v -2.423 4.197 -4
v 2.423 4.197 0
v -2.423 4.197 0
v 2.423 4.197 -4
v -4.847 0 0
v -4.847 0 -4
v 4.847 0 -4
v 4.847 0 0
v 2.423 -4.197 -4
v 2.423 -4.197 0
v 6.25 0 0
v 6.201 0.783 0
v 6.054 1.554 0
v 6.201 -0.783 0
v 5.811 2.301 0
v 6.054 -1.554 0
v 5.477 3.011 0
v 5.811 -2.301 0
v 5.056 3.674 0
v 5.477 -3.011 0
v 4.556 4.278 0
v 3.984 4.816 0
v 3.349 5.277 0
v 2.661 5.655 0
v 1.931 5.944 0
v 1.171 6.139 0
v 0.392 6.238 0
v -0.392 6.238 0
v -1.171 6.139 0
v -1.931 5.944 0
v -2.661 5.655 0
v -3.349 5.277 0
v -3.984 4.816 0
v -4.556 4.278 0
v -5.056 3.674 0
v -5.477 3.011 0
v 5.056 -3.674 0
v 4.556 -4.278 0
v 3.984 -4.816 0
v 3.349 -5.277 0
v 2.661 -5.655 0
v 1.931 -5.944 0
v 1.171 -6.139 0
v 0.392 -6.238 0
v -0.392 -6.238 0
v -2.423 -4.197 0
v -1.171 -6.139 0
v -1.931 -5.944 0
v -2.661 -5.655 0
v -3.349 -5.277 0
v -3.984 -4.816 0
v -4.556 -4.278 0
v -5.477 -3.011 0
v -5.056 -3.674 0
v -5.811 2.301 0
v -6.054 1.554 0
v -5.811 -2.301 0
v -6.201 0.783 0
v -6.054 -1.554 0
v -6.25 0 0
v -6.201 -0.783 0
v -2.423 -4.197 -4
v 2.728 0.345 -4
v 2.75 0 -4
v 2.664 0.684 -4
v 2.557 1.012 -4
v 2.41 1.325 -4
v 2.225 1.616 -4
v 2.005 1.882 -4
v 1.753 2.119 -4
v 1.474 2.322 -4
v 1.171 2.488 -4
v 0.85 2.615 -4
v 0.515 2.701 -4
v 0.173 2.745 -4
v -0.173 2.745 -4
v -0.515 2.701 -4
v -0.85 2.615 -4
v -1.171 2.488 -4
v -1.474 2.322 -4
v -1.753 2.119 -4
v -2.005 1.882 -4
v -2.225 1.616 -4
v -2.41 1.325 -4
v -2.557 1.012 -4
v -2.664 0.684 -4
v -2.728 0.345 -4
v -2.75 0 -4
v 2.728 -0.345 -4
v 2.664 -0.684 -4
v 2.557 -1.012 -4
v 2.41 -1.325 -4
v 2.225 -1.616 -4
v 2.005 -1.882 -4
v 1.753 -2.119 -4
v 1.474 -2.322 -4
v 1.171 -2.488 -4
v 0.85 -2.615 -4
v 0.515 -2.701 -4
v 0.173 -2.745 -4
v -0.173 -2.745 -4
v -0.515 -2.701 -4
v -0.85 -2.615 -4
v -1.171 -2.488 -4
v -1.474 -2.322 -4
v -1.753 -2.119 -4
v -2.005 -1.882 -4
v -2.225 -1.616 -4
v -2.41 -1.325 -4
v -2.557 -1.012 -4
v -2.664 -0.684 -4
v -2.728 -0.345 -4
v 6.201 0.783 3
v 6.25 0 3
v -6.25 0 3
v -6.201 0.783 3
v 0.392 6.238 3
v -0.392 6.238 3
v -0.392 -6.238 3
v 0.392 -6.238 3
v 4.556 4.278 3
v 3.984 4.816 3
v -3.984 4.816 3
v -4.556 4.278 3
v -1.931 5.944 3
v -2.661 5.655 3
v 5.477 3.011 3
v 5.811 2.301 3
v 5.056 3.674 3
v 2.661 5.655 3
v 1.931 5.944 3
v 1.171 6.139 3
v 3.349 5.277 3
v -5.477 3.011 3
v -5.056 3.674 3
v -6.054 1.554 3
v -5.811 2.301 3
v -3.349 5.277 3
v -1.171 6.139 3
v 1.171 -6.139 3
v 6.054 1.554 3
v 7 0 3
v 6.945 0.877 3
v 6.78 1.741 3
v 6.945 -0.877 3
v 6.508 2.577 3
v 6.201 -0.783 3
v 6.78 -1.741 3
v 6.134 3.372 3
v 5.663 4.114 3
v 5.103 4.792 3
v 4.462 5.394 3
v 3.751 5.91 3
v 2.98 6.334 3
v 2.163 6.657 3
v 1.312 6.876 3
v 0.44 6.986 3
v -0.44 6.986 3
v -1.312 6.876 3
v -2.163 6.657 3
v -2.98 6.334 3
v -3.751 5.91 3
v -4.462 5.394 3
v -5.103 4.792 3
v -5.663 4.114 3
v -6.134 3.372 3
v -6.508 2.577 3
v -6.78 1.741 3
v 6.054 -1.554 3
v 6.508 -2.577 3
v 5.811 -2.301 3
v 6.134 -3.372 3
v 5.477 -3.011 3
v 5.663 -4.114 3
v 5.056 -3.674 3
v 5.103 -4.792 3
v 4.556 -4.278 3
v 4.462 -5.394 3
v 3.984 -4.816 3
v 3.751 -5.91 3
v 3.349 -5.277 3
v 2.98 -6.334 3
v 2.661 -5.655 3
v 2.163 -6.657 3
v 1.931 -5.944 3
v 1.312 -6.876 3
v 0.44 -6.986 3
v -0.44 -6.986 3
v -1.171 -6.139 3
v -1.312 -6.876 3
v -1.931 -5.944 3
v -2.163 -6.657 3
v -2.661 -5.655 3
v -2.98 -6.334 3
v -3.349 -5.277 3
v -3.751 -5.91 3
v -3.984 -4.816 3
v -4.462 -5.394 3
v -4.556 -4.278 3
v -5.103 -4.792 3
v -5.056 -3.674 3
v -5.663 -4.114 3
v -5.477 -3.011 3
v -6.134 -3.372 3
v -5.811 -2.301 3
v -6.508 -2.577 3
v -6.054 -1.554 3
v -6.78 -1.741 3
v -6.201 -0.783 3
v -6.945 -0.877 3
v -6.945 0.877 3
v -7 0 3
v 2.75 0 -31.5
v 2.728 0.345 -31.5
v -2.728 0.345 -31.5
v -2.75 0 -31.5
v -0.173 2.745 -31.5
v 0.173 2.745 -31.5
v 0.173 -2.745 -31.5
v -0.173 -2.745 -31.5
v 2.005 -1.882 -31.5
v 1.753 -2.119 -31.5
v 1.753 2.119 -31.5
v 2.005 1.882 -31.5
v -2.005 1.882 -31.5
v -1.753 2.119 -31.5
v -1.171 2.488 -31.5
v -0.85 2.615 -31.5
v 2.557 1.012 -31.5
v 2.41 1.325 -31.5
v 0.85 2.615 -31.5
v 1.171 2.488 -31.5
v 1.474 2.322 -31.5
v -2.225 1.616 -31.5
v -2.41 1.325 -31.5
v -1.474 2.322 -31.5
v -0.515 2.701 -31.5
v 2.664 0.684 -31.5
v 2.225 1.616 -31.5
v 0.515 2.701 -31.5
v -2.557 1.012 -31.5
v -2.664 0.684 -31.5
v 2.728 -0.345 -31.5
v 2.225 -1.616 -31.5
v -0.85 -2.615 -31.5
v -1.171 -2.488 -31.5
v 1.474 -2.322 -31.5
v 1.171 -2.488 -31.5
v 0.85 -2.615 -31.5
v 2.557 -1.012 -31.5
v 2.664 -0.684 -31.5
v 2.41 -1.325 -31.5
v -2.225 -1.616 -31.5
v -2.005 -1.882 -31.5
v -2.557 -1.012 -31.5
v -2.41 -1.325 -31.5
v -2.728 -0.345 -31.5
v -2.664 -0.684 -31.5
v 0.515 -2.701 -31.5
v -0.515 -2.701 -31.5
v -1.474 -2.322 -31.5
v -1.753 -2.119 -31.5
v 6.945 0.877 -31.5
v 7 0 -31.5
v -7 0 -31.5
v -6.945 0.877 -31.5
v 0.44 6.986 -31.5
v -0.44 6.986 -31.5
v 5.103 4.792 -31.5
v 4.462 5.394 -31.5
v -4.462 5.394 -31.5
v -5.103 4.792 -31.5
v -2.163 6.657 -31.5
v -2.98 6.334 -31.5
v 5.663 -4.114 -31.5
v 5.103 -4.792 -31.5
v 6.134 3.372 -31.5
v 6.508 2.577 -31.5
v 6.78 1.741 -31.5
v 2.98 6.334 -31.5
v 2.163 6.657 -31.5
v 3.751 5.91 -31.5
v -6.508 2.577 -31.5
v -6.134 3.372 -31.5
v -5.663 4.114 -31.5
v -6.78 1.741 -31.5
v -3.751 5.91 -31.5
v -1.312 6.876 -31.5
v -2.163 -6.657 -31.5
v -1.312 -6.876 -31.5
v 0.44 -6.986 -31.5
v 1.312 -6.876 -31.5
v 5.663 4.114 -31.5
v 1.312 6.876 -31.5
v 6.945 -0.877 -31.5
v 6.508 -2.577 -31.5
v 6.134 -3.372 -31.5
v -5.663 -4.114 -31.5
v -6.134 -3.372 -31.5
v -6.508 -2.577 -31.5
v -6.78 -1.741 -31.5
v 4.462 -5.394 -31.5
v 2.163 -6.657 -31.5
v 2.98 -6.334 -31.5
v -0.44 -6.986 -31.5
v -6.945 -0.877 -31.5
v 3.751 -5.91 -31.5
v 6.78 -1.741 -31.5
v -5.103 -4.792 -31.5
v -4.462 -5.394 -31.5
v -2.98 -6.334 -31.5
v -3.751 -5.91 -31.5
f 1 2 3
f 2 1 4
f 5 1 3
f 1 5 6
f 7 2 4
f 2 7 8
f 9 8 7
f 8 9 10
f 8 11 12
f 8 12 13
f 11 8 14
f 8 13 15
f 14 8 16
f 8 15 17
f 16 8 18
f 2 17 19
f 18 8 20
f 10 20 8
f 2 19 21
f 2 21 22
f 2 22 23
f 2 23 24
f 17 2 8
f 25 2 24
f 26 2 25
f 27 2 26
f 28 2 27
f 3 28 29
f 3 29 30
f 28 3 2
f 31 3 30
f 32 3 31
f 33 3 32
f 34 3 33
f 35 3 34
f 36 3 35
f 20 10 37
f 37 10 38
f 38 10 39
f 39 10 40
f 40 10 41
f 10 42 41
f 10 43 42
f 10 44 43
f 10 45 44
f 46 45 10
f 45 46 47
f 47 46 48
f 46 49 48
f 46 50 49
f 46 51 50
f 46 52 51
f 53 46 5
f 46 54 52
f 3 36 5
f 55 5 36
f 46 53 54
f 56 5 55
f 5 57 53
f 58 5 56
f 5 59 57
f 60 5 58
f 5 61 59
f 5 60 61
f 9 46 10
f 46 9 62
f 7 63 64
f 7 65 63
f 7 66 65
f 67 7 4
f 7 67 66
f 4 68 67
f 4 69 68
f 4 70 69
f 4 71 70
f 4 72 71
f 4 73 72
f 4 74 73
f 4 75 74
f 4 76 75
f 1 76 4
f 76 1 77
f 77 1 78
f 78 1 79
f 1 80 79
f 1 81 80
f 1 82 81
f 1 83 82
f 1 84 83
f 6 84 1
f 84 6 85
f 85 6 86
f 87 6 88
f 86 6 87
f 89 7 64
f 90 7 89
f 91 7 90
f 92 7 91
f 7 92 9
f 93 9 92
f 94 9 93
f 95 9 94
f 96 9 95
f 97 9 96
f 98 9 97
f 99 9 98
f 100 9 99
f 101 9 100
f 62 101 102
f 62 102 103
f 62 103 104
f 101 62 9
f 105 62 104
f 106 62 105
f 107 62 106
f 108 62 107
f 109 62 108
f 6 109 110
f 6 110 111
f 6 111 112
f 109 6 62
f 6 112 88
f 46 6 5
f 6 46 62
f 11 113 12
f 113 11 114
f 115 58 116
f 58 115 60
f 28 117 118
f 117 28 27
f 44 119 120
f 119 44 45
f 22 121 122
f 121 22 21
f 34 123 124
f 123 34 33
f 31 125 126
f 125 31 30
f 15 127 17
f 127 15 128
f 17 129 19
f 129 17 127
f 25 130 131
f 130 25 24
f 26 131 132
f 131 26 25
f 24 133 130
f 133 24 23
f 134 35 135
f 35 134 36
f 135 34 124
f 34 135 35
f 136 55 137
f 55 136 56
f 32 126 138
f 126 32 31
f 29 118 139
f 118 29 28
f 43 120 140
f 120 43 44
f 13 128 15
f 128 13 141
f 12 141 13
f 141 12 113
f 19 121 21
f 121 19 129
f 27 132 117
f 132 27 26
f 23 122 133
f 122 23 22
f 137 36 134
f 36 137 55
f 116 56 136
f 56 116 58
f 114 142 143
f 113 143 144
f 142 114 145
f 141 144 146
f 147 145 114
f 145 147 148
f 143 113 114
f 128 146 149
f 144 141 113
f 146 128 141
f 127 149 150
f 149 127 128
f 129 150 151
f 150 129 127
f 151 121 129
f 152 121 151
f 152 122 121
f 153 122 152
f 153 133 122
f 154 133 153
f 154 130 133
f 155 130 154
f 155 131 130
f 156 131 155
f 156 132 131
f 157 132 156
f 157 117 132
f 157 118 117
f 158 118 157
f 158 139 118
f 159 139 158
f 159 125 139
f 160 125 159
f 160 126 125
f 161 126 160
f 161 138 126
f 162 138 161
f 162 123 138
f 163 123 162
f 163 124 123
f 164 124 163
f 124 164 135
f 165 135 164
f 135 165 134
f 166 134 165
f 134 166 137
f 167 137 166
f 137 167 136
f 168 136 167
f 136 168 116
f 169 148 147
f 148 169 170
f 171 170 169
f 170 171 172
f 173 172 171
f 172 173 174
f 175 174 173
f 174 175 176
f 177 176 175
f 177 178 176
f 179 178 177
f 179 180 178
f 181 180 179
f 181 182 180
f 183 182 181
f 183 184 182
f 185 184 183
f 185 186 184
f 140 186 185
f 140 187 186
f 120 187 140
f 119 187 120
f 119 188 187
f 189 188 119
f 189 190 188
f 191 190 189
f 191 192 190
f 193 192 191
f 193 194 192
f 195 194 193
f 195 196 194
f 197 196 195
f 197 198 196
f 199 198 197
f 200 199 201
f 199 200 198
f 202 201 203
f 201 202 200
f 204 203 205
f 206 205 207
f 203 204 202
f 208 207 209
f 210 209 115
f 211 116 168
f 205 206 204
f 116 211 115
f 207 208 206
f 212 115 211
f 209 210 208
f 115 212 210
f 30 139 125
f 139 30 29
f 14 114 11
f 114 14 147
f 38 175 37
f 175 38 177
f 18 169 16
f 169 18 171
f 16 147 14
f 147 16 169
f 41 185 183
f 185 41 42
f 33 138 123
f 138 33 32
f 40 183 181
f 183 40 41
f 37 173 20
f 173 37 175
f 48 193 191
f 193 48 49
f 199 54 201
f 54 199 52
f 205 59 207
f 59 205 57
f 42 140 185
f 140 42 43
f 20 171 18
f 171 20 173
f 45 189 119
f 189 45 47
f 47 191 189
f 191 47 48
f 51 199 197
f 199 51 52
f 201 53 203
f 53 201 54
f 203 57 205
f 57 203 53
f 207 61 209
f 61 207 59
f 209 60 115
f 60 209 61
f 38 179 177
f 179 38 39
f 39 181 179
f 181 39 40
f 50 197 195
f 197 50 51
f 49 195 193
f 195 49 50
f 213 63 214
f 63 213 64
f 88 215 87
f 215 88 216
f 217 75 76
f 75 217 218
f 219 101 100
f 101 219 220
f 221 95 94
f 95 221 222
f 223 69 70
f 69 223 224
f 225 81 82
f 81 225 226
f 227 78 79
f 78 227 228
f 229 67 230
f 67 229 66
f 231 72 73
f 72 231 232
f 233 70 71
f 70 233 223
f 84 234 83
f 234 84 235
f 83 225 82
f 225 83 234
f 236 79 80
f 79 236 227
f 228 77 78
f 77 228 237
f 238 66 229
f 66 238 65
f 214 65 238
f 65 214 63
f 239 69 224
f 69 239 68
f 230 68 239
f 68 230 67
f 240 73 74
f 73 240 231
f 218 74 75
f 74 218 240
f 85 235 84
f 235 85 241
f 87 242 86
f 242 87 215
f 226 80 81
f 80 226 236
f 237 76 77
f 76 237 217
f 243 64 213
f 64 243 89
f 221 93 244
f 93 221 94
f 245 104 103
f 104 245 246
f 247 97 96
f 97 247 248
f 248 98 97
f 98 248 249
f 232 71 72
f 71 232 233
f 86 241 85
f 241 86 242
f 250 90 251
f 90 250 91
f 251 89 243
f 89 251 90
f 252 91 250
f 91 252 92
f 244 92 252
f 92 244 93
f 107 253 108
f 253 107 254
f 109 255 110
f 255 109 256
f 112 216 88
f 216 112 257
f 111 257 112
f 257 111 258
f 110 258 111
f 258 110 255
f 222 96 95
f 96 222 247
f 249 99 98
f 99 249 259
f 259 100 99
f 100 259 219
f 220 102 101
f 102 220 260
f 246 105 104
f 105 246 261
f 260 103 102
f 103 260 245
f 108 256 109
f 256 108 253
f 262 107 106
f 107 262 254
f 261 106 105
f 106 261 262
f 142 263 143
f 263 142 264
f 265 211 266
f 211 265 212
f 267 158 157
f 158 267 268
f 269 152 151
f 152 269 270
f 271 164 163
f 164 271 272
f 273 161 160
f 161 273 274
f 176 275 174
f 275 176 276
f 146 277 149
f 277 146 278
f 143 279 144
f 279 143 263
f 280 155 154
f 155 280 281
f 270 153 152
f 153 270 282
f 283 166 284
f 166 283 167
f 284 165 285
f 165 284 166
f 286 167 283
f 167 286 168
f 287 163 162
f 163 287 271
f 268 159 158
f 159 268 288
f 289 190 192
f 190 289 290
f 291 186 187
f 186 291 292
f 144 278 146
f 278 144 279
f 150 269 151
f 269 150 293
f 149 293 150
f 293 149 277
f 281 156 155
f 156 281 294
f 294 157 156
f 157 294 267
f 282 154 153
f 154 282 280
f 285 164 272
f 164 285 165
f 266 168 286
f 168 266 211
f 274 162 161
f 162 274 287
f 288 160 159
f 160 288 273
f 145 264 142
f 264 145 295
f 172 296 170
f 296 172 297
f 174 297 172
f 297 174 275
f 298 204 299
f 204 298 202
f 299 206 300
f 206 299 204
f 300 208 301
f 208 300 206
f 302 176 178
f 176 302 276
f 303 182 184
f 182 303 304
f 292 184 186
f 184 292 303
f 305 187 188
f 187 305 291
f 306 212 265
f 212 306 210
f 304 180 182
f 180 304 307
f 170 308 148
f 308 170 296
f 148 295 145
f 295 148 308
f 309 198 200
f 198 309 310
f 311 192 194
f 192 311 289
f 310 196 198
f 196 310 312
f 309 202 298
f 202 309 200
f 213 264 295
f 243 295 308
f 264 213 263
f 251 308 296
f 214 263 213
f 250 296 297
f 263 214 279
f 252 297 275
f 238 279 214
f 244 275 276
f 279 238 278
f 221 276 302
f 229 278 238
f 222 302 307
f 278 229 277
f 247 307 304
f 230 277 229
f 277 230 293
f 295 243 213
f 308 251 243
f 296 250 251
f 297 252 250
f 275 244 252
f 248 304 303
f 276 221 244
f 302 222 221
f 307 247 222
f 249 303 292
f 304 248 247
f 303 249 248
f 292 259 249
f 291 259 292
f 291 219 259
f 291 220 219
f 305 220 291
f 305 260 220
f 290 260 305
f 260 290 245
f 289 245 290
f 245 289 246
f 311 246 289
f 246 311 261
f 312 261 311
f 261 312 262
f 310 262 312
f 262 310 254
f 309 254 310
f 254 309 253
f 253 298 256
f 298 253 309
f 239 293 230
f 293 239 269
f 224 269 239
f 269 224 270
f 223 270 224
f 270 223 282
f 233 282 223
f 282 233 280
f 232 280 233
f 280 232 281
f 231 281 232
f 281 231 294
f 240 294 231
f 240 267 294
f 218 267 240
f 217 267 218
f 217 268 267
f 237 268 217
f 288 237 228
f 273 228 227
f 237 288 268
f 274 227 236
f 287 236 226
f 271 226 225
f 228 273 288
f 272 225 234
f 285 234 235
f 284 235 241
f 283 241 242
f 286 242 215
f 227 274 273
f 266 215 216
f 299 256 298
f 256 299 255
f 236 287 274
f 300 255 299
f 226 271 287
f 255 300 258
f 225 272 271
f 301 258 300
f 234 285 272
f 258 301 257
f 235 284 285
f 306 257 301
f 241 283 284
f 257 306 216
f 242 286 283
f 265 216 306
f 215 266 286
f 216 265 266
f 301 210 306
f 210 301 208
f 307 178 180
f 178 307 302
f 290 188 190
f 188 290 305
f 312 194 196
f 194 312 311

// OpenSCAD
$fn = 50;

difference() {
	union() {
		translate(v = [0, 0, -31.5]) {
			cylinder(h = 34.5, r = 7.0);
		}
	}
	union() {
		translate(v = [0, 0, 0]) {
			rotate(a = [0, 0, 0]) {
				difference() {
					union() {
						translate(v = [0, 0, -4]) {
							linear_extrude(height = 4) {
								polygon(points = [[4.8468, 0.0], [2.4234000000000004, 4.197451927062417], [-2.423399999999999, 4.197451927062417], [-4.8468, 5.935618106107392e-16], [-2.423400000000002, -4.197451927062416], [2.423399999999997, -4.197451927062419]]);
							}
						}
					}
					union();
				}
			}
		}
		#cylinder(h = 3, r = 6.25);
		#translate(v = [0, 0, -100.0]) {
			cylinder(h = 200, r = 2.75);
		}
	}
}
